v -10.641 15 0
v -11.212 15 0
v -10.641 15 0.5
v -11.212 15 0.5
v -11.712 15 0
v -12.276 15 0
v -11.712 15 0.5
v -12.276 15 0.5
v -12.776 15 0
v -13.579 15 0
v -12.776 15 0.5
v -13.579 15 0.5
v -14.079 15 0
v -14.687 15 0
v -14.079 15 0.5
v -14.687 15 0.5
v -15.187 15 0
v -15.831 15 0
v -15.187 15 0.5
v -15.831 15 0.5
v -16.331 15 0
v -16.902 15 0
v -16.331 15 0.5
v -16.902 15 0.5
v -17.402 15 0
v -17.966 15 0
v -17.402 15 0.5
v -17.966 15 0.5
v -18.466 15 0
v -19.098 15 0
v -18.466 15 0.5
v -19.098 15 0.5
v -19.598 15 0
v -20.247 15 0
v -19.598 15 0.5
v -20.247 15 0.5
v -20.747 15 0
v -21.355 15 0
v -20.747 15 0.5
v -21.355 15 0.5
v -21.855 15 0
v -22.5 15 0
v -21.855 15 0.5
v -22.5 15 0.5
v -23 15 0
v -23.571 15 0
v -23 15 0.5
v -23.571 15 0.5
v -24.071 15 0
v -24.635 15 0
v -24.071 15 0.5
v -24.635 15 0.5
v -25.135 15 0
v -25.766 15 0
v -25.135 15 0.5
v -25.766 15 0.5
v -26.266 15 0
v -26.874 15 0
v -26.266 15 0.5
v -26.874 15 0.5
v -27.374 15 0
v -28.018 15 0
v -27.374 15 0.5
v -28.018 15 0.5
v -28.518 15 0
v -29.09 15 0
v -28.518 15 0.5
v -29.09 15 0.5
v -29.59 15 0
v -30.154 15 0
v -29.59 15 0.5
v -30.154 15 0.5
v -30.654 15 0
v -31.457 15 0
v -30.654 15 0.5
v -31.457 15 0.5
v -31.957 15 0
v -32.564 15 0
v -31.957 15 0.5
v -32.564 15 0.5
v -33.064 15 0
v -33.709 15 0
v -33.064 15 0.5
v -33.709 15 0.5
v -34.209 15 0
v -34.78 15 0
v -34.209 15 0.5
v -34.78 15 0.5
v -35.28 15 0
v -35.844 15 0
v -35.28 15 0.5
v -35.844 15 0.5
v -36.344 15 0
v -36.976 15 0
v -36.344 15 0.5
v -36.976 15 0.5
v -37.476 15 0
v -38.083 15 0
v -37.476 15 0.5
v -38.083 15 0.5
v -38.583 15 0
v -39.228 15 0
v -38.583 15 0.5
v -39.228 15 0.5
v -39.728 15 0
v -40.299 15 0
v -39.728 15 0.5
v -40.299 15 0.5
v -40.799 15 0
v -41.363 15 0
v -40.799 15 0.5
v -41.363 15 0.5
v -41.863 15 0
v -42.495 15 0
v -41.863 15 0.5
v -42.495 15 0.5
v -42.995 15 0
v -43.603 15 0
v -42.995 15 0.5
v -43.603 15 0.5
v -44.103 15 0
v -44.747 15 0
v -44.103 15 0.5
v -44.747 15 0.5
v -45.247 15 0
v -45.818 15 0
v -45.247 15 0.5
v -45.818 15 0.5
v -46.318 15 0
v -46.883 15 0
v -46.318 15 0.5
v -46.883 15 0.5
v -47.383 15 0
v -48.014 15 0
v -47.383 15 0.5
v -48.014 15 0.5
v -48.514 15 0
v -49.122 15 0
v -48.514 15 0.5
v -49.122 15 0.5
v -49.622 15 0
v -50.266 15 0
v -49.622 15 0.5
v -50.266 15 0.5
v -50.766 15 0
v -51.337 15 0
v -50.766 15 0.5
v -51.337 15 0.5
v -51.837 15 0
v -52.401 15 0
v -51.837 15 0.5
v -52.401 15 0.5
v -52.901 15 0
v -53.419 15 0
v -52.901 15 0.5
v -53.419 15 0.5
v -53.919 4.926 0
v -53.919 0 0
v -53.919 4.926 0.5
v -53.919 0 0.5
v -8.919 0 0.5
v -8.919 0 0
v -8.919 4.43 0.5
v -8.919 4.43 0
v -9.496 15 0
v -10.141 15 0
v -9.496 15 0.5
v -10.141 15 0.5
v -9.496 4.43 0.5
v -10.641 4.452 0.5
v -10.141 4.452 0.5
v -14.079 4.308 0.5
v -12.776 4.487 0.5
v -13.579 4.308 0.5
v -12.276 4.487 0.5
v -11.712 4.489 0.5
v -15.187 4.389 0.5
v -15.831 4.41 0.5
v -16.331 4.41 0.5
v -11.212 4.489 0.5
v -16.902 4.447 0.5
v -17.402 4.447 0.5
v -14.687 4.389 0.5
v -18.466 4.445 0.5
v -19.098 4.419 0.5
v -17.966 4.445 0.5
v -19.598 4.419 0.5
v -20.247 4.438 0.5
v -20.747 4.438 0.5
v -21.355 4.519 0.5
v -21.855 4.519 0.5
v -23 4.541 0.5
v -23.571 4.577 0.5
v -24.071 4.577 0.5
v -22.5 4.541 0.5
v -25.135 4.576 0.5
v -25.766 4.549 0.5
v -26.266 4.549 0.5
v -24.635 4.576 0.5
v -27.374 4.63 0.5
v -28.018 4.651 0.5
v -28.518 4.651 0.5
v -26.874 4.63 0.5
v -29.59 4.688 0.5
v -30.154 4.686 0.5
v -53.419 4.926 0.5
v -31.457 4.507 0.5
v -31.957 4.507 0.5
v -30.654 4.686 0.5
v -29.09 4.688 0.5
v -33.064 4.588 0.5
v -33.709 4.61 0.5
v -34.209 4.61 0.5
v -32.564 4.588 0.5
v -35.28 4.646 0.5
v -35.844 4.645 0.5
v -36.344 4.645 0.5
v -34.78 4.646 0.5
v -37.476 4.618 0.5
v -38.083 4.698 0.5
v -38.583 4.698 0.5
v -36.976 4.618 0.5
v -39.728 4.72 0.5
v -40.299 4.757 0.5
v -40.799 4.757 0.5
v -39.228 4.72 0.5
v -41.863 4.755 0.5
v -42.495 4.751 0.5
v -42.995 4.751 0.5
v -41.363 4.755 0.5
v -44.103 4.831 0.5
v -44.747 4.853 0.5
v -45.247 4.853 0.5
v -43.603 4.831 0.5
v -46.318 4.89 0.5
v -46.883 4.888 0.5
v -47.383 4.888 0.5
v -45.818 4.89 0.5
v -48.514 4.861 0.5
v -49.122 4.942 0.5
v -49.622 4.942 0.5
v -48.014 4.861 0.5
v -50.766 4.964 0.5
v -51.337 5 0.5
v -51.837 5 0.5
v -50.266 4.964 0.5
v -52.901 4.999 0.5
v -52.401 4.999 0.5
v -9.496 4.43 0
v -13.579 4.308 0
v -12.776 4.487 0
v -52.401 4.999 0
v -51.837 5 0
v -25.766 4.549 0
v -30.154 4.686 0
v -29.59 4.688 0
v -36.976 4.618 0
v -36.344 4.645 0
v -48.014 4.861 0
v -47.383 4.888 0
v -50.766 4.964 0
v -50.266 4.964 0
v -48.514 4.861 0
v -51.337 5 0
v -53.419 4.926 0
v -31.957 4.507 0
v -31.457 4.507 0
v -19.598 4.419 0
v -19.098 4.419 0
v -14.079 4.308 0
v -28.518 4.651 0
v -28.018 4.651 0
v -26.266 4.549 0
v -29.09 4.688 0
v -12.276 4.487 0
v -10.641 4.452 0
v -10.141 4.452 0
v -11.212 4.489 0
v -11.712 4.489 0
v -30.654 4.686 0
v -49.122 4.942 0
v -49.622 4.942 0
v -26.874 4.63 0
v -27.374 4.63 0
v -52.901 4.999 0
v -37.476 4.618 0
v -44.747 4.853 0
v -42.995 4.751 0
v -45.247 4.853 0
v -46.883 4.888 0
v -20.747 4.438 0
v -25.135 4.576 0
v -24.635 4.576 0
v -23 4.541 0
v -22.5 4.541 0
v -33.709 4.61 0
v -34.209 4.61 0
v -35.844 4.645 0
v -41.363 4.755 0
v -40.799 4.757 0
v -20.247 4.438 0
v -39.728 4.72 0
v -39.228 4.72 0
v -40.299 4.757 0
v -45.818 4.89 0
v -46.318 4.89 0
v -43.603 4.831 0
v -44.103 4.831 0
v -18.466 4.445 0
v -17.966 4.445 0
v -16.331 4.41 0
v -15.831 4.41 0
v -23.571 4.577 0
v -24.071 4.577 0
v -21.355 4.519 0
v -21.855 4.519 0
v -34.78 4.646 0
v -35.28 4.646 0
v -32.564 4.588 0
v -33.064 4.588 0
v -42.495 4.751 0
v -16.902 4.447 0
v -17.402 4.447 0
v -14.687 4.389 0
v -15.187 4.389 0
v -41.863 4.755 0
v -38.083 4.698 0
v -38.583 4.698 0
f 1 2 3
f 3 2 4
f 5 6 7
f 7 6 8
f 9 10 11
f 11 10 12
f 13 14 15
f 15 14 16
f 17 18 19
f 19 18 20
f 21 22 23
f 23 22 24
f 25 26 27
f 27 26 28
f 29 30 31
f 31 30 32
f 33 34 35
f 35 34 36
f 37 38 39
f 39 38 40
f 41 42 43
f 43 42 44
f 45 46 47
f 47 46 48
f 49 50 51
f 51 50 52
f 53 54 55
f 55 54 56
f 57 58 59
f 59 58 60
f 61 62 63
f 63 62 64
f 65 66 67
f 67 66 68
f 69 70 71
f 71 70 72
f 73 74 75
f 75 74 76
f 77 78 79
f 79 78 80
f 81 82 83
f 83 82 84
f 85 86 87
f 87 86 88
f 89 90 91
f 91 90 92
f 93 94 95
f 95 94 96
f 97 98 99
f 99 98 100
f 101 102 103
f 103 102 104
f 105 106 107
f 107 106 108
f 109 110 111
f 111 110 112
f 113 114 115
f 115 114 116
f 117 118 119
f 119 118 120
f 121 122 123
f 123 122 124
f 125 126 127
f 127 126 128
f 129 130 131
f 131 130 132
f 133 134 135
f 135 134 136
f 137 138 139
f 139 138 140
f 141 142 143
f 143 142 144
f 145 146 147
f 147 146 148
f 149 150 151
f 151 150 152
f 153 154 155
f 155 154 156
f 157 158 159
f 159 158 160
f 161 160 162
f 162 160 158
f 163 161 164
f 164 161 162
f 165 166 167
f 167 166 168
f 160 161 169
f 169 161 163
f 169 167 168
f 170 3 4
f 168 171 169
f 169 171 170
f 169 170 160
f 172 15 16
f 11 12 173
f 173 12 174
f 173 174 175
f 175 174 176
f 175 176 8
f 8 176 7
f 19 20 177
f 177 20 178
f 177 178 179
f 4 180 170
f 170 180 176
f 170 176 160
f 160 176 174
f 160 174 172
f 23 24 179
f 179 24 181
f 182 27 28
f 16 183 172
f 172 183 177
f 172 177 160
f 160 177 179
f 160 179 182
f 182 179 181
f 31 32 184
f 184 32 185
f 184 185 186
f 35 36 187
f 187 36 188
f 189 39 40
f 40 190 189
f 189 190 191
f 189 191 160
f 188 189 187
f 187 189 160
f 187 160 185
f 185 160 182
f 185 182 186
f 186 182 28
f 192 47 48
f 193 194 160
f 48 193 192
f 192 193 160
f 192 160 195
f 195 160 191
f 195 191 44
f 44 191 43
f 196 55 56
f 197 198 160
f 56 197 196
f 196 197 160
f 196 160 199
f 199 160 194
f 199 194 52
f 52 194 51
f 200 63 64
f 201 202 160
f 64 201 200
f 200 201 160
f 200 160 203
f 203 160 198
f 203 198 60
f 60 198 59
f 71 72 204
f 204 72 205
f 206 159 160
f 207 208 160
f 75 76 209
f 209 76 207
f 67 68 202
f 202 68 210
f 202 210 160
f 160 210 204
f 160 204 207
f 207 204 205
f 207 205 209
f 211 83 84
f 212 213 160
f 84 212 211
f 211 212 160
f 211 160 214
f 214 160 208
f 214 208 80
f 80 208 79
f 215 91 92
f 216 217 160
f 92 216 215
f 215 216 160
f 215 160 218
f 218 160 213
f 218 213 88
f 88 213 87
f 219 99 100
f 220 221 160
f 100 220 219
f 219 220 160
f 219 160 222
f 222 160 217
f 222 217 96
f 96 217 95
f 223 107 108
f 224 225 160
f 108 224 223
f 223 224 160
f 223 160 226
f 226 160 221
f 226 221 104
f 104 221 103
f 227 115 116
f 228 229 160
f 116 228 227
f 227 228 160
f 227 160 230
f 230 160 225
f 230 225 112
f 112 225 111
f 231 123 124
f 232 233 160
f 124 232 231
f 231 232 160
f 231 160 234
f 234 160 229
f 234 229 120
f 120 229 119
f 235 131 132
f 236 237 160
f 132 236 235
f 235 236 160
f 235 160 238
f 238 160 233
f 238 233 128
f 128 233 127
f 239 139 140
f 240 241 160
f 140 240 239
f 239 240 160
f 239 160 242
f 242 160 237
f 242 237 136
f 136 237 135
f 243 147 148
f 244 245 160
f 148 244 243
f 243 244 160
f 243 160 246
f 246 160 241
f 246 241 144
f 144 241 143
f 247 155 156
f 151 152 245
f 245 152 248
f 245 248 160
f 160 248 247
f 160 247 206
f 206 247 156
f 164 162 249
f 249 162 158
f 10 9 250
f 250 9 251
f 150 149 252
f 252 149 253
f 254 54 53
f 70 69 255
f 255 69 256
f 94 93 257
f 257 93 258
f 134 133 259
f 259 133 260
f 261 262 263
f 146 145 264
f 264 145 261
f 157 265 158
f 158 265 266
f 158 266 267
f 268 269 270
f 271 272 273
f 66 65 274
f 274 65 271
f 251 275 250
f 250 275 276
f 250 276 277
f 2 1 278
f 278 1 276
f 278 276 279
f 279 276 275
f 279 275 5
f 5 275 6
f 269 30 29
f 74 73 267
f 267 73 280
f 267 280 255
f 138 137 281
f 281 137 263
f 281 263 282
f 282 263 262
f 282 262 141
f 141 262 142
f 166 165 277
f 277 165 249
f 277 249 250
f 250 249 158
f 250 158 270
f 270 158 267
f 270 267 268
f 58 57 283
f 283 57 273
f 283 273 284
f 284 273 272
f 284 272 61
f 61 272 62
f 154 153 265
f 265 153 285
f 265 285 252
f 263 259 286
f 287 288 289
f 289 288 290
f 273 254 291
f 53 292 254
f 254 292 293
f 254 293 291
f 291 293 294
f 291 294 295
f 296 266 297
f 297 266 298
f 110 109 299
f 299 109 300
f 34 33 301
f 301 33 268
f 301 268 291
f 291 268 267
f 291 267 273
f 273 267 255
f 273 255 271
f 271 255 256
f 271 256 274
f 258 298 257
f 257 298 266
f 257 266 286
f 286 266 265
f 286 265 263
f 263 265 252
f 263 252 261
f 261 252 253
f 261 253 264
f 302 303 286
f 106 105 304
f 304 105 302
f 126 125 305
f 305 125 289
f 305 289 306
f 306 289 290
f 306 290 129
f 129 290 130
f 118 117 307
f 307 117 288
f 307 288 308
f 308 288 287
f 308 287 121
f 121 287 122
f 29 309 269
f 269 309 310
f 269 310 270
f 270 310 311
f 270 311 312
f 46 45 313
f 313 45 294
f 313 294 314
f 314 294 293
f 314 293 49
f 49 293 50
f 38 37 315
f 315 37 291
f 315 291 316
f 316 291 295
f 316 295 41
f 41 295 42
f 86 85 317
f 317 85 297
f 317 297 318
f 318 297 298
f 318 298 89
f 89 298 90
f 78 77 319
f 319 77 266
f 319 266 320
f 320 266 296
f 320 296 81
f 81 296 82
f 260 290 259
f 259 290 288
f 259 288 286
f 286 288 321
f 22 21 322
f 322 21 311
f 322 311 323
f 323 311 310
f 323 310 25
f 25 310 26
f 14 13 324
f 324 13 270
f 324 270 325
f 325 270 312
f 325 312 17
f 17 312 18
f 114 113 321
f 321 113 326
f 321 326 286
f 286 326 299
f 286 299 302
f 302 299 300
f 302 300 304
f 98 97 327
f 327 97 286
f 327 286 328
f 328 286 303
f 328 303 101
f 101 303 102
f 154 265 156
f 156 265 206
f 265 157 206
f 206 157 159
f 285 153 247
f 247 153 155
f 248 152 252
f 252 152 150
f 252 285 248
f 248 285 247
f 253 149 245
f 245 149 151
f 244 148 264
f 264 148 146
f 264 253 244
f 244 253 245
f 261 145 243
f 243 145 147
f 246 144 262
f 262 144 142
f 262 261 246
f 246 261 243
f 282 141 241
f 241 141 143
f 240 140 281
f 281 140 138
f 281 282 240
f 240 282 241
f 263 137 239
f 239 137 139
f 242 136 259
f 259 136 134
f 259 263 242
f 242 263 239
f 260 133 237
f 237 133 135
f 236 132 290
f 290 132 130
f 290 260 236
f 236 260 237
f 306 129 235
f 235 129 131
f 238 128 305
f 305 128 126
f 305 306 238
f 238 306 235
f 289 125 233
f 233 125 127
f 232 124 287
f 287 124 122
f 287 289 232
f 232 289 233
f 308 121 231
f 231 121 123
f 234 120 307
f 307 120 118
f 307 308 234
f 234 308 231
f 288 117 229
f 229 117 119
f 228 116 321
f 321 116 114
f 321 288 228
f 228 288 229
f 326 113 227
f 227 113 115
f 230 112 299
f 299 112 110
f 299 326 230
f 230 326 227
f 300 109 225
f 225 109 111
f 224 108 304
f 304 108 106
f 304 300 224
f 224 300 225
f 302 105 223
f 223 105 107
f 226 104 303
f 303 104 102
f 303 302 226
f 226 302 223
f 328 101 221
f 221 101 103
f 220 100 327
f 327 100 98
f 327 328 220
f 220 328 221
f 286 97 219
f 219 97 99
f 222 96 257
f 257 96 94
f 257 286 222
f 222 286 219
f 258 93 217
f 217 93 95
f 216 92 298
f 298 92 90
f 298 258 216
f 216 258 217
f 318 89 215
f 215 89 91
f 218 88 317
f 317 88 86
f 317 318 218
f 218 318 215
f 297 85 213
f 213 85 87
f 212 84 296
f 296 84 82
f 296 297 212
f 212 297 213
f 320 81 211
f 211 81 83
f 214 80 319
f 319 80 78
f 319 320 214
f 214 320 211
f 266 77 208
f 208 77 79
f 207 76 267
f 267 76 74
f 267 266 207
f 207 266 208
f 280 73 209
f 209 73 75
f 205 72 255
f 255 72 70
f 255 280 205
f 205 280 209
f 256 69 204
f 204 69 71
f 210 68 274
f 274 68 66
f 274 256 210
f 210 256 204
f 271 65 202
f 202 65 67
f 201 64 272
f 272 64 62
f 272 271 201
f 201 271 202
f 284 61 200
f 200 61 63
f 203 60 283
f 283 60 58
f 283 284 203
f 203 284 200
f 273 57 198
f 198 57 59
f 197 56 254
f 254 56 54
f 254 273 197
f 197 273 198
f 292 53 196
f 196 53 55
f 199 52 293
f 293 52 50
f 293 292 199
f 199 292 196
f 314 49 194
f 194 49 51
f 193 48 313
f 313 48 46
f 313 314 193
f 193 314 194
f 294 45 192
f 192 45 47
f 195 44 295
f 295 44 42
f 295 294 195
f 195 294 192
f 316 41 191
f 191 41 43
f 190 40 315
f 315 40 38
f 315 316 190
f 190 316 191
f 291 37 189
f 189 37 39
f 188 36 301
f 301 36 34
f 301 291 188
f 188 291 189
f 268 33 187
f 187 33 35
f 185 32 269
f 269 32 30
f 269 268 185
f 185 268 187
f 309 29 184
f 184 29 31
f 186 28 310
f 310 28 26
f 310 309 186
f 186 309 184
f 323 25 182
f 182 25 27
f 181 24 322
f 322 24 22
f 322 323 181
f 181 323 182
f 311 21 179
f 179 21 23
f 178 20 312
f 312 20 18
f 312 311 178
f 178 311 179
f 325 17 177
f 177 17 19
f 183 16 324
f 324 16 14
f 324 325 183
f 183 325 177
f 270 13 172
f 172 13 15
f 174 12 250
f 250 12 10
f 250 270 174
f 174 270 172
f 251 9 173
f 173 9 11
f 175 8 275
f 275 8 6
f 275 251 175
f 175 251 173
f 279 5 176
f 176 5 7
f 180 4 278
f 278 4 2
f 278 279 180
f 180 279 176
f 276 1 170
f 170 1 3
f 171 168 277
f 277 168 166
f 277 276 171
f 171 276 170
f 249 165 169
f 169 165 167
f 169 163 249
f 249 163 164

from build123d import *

# Parameters (mm, degrees)
SKETCH1_W           = 45
SKETCH1_H           = 15
BOSS_EXTRUDE1_DEPTH = 0.5
SKETCH2_W           = 0.5
SKETCH2_H           = 12
SKETCH2_H_2         = 10.074487737
SKETCH2_W_2         = 0.812235623
CUT_EXTRUDE1_DEPTH  = 0.5


with BuildPart() as part:
    # Sketch1 → Boss-Extrude1 (new body)
    with BuildSketch(Plane.XY):
        with Locations((-31.419252999, 7.5)):
            Rectangle(SKETCH1_W, SKETCH1_H)
    extrude(amount=BOSS_EXTRUDE1_DEPTH)

    # Sketch2 → Cut-Extrude1 (cut)
    with BuildSketch(Plane.XY.offset(0.5)):
        with Locations((-52.65136316, 10.998562855)):
            Rectangle(SKETCH2_W, SKETCH2_H)
        with Locations((-53.669252999, 9.962756132)):
            Rectangle(SKETCH2_W, SKETCH2_H_2)
        with Locations((-51.587300045, 11.000260257)):
            Rectangle(SKETCH2_W, SKETCH2_H)
        with Locations((-50.51602115, 10.963702729)):
            Rectangle(SKETCH2_W, SKETCH2_H)
        with Locations((-49.371583394, 10.941885768)):
            Rectangle(SKETCH2_W, SKETCH2_H)
        with Locations((-48.263902197, 10.86130862)):
            Rectangle(SKETCH2_W, SKETCH2_H)
        with Locations((-47.132506134, 10.88799725)):
            Rectangle(SKETCH2_W, SKETCH2_H)
        with Locations((-46.068443018, 10.889694652)):
            Rectangle(SKETCH2_W, SKETCH2_H)
        with Locations((-44.997164124, 10.853137125)):
            Rectangle(SKETCH2_W, SKETCH2_H)
        with Locations((-43.852726367, 10.831320164)):
            Rectangle(SKETCH2_W, SKETCH2_H)
        with Locations((-42.745045171, 10.750743016)):
            Rectangle(SKETCH2_W, SKETCH2_H)
        with Locations((-41.613016052, 10.755156249)):
            Rectangle(SKETCH2_W, SKETCH2_H)
        with Locations((-40.548952936, 10.756853651)):
            Rectangle(SKETCH2_W, SKETCH2_H)
        with Locations((-39.477674042, 10.720296123)):
            Rectangle(SKETCH2_W, SKETCH2_H)
        with Locations((-38.333236285, 10.698479162)):
            Rectangle(SKETCH2_W, SKETCH2_H)
        with Locations((-37.225555089, 10.617902014)):
            Rectangle(SKETCH2_W, SKETCH2_H)
        with Locations((-36.094159026, 10.644590644)):
            Rectangle(SKETCH2_W, SKETCH2_H)
        with Locations((-35.03009591, 10.646288046)):
            Rectangle(SKETCH2_W, SKETCH2_H)
        with Locations((-33.958817016, 10.609730519)):
            Rectangle(SKETCH2_W, SKETCH2_H)
        with Locations((-32.814379259, 10.587913558)):
            Rectangle(SKETCH2_W, SKETCH2_H)
        with Locations((-31.706698063, 10.50733641)):
            Rectangle(SKETCH2_W, SKETCH2_H)
        with Locations((-30.403756477, 10.686250193)):
            Rectangle(SKETCH2_W, SKETCH2_H)
        with Locations((-29.339693362, 10.687947595)):
            Rectangle(SKETCH2_W, SKETCH2_H)
        with Locations((-28.268414467, 10.651390067)):
            Rectangle(SKETCH2_W, SKETCH2_H)
        with Locations((-27.123976711, 10.629573106)):
            Rectangle(SKETCH2_W, SKETCH2_H)
        with Locations((-26.016295514, 10.548995958)):
            Rectangle(SKETCH2_W, SKETCH2_H)
        with Locations((-24.884899451, 10.575684588)):
            Rectangle(SKETCH2_W, SKETCH2_H)
        with Locations((-23.820836336, 10.57738199)):
            Rectangle(SKETCH2_W, SKETCH2_H)
        with Locations((-22.749557441, 10.540824462)):
            Rectangle(SKETCH2_W, SKETCH2_H)
        with Locations((-21.605119685, 10.519007501)):
            Rectangle(SKETCH2_W, SKETCH2_H)
        with Locations((-20.497438488, 10.438430353)):
            Rectangle(SKETCH2_W, SKETCH2_H)
        with Locations((-19.347892241, 10.418530687)):
            Rectangle(SKETCH2_W, SKETCH2_H)
        with Locations((-18.216496178, 10.445219317)):
            Rectangle(SKETCH2_W, SKETCH2_H)
        with Locations((-17.152433063, 10.446916719)):
            Rectangle(SKETCH2_W, SKETCH2_H)
        with Locations((-16.081154168, 10.410359191)):
            Rectangle(SKETCH2_W, SKETCH2_H)
        with Locations((-14.936716412, 10.38854223)):
            Rectangle(SKETCH2_W, SKETCH2_H)
        with Locations((-13.829035215, 10.307965082)):
            Rectangle(SKETCH2_W, SKETCH2_H)
        with Locations((-12.526093629, 10.486878866)):
            Rectangle(SKETCH2_W, SKETCH2_H)
        with Locations((-11.462030514, 10.488576268)):
            Rectangle(SKETCH2_W, SKETCH2_H)
        with Locations((-10.390751619, 10.45201874)):
            Rectangle(SKETCH2_W, SKETCH2_H)
        with Locations((-9.090196052, 10.430201779)):
            Rectangle(SKETCH2_W_2, SKETCH2_H)
        with Locations((-8.138632666, 10.349624631)):
            Rectangle(SKETCH2_W, SKETCH2_H)
        with Locations((-7.007236603, 10.376313261)):
            Rectangle(SKETCH2_W, SKETCH2_H)
        with Locations((-5.943173488, 10.378010663)):
            Rectangle(SKETCH2_W, SKETCH2_H)
        with Locations((-4.871894593, 10.341453135)):
            Rectangle(SKETCH2_W, SKETCH2_H)
        with Locations((-3.727456837, 10.319636174)):
            Rectangle(SKETCH2_W, SKETCH2_H)
        with Locations((-2.61977564, 10.239059026)):
            Rectangle(SKETCH2_W, SKETCH2_H)
    extrude(amount=-CUT_EXTRUDE1_DEPTH, mode=Mode.SUBTRACT)


solid = part.part
